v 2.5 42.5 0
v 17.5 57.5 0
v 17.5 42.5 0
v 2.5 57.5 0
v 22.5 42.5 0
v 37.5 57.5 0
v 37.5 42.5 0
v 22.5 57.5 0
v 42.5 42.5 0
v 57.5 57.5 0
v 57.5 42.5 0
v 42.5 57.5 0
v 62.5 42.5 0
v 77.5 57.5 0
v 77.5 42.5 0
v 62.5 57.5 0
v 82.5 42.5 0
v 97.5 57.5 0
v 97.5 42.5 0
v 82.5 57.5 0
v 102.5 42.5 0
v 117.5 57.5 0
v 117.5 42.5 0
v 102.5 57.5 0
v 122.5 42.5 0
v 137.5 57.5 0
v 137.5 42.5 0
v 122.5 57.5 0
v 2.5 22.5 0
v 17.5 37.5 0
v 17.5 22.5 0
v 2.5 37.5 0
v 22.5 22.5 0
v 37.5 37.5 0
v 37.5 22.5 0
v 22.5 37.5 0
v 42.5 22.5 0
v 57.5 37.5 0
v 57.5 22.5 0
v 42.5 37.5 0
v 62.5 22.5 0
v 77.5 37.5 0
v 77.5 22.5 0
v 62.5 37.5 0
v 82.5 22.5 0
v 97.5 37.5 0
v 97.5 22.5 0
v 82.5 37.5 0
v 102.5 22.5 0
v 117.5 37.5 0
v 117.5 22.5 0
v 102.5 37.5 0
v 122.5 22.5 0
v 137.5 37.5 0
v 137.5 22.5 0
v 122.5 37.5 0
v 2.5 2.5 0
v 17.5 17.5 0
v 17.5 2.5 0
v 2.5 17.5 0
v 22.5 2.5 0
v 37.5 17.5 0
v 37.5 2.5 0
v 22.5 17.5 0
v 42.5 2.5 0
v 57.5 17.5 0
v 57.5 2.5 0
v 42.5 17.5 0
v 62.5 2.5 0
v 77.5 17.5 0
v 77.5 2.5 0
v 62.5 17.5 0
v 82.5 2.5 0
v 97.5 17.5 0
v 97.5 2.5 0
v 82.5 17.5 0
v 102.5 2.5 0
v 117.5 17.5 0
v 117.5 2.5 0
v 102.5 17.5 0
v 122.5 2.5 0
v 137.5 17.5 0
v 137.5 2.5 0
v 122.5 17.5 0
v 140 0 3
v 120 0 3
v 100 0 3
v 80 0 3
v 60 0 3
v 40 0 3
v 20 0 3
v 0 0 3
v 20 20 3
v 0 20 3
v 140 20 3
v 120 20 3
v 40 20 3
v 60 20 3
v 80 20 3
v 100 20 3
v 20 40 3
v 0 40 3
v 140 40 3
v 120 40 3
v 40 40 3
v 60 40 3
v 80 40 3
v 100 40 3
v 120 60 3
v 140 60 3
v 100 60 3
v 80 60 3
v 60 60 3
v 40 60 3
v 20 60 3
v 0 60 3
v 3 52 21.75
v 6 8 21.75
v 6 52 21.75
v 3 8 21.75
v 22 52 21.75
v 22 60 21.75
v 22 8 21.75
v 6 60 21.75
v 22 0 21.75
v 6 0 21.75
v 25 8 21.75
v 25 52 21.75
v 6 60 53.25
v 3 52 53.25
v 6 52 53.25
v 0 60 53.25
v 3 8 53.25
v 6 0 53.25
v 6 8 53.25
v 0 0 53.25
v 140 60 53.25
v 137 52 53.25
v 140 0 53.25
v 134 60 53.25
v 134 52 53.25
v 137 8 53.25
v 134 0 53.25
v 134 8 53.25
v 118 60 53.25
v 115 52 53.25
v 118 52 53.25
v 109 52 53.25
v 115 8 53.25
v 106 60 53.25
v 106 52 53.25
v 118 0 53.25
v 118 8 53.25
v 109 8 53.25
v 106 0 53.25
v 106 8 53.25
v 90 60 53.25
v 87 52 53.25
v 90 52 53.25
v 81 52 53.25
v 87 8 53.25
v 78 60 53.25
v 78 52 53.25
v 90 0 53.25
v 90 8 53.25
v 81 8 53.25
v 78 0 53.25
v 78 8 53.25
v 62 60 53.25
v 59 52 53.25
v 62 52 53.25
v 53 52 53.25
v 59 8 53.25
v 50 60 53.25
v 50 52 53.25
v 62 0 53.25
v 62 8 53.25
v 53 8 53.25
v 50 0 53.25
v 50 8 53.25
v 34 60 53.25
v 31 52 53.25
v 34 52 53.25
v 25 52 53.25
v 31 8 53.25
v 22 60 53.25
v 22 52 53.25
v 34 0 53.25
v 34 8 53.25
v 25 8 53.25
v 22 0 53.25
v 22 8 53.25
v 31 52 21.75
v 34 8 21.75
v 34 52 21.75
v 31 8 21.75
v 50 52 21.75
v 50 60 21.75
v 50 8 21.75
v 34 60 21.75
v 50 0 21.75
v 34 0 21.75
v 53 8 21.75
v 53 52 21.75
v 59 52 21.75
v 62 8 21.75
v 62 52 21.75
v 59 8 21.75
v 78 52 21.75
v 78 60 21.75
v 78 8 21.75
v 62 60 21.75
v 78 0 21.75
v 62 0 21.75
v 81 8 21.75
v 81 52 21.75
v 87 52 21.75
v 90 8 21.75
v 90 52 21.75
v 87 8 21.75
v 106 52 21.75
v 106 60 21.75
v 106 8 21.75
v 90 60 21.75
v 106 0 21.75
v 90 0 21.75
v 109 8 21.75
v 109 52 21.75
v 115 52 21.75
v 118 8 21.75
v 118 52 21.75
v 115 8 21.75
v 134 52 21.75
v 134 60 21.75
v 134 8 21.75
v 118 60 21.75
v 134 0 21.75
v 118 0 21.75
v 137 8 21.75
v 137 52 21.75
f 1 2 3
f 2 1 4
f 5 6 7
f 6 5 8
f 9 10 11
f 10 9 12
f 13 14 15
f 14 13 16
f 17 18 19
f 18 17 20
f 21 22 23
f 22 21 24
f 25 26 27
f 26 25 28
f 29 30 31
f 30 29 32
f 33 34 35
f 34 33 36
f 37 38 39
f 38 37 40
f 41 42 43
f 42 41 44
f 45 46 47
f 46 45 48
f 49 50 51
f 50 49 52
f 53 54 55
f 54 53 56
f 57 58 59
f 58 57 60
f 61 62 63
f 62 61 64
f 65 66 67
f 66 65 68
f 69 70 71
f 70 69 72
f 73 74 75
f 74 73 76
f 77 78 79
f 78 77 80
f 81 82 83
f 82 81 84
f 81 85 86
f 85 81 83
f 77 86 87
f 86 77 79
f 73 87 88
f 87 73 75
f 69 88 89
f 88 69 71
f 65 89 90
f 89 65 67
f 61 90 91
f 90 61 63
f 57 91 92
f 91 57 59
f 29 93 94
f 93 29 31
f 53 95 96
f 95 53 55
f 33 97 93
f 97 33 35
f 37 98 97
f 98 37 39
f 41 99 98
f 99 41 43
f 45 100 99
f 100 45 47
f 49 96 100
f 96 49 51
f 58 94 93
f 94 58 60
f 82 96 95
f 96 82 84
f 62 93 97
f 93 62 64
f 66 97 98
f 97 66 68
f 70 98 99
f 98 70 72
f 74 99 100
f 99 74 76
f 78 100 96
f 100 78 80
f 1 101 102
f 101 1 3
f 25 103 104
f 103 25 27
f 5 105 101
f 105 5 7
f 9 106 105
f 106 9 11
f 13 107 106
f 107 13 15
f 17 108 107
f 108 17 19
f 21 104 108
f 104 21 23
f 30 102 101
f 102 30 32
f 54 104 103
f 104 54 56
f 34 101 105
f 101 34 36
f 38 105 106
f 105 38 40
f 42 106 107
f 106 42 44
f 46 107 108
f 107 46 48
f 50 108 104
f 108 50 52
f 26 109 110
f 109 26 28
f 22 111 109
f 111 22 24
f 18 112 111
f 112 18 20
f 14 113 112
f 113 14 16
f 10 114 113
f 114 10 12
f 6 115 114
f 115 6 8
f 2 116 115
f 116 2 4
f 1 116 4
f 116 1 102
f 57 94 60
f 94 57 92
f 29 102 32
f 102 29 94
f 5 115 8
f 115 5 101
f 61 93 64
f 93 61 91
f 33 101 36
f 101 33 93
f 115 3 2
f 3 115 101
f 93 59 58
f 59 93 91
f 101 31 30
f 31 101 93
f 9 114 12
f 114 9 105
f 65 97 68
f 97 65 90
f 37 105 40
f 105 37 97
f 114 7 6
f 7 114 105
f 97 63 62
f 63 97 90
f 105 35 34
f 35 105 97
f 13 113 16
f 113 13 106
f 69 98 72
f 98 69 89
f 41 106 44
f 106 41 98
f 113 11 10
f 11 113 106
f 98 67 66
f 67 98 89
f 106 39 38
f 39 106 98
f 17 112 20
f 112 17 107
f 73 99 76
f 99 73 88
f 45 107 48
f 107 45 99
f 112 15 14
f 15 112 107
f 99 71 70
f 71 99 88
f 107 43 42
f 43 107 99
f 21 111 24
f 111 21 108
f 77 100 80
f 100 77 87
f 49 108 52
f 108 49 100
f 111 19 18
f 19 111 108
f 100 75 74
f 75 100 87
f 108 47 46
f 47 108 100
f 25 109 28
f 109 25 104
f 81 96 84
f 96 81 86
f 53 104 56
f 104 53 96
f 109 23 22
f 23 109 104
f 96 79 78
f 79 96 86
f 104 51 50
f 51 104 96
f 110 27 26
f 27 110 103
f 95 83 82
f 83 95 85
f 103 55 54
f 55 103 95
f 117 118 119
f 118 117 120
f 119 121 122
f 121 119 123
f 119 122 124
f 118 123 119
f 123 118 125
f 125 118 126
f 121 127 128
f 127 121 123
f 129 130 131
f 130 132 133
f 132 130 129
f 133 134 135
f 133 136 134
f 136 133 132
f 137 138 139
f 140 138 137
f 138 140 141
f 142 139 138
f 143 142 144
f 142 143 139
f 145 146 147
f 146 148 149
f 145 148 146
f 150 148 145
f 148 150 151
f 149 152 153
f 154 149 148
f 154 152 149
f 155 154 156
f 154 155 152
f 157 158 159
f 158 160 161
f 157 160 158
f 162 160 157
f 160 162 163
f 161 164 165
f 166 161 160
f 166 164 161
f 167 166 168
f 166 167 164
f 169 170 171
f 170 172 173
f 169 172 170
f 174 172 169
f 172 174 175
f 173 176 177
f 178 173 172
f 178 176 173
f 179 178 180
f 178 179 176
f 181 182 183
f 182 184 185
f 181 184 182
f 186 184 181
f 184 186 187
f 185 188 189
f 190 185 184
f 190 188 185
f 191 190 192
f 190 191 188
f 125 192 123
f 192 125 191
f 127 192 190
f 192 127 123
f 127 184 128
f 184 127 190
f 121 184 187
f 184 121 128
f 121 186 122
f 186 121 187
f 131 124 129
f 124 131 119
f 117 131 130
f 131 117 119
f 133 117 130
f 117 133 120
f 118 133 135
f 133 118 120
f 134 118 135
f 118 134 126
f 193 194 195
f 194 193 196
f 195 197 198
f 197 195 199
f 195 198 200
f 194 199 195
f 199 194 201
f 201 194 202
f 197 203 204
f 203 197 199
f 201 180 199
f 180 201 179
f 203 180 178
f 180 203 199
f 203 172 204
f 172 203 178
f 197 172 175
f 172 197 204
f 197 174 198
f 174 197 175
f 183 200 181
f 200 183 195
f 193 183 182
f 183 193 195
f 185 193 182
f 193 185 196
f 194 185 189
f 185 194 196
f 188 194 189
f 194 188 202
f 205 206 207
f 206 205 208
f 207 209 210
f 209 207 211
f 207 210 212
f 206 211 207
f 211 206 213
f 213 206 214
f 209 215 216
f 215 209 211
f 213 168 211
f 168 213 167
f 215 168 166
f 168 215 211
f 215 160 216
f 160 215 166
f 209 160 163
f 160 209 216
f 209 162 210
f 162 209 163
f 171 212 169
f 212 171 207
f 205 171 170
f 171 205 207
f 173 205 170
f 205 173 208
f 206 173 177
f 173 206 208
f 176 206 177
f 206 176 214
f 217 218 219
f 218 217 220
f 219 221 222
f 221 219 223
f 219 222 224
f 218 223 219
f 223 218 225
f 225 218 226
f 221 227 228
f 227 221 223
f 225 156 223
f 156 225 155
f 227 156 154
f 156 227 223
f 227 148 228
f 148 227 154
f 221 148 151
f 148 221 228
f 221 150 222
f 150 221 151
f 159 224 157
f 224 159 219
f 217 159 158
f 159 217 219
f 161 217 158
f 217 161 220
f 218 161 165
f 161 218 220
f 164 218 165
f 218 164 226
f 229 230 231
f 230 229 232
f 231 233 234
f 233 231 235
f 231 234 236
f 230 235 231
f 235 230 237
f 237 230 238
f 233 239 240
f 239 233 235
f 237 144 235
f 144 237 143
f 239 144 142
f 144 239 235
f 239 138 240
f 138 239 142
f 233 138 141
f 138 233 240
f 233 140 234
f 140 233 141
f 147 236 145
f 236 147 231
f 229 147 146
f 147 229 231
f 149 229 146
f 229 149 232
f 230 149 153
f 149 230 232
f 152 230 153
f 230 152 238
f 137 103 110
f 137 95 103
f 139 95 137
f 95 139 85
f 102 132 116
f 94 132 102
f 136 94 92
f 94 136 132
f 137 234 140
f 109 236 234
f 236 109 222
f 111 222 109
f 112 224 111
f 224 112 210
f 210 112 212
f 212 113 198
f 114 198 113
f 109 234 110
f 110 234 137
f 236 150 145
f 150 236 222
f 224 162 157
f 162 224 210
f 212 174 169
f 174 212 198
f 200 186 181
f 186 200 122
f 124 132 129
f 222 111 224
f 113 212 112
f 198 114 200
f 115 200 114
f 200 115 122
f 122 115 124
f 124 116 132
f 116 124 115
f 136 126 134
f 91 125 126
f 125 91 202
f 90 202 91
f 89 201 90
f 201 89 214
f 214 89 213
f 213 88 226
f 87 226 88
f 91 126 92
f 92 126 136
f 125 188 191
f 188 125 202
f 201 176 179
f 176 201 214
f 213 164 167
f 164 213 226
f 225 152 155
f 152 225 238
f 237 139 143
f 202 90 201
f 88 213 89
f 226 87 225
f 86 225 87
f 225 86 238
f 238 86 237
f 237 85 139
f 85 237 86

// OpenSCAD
// file: ../common.scad
BASE_TILE_SIZE=20;
BASE_WIDTH=5;
PEAK_HEIGHT=3;

DEFAULT_FONT = "Ubuntu:style=Medium";
DEFAULT_FONT_DEPTH = 1;
DEFAULT_FONT_SIZE = 10;

render_helper_h = 1;

function y_up() = [90, 0, 0];
function x_up() = [90, 0, 90];

function min_floor_offset(wall_width) = wall_width + PEAK_HEIGHT;
function tri_mid() = BASE_WIDTH / 2;
function triangle() = [[0, 0],[BASE_WIDTH, 0],[tri_mid(), PEAK_HEIGHT]];
function base_tile_size() = BASE_TILE_SIZE;
function peak_height() = PEAK_HEIGHT;
function font_depth() = DEFAULT_FONT_DEPTH;
function font_size() = DEFAULT_FONT_SIZE;
function gridSize(x) = base_tile_size() * x;

function isX(direction) = (direction == "x");

module grid(width, depth, direction) {
    length = isX(direction) ? width : depth;
    slot_length = isX(direction) ? depth : width;
    translate_z = isX(direction) ? -slot_length : 0;
    rot = isX(direction) ? y_up() : x_up();

    // This is the total additional slots past the initial one
    total_slots = floor(length / BASE_TILE_SIZE);

    for (i = [0 : total_slots]) {
        offset = -tri_mid() + BASE_TILE_SIZE * i;
        rotate(rot)
        translate([offset, 0, translate_z])
        linear_extrude(height = slot_length)
        polygon(points=triangle());
    }
}

module grid_slots(width, depth) {
    grid(width, depth, "y");
    grid(width, depth, "x");
}

module base_block(width, depth, height, include_grid = true) {
    difference() {
        cube([width, depth, height]);

        if (include_grid) {
            grid_slots(width, depth);
        }
    }
}

module prism(l, w, h) {
    polyhedron(
        points=[ [0, 0, 0], [0, w, h], [l, w, h], [l, 0, 0], [0, w, 0], [l, w, 0] ],
        faces=[ [0, 1, 2, 3],
            [2, 1, 4, 5],
            [0, 3, 5, 4],
            [0, 4, 1],
            [3, 2, 5]
        ]
    );
}

module pyramid(w) {
    polyhedron(
        points=[ [w,w,0],[w,-w,0],[-w,-w,0],[-w,w,0], [0,0,w]  ],
        faces=[ [0,1,4],[1,2,4],[2,3,4],[3,0,4], [1,0,3],[2,1,3] ]
    );
}

module embossed_text(
    t,
    h = DEFAULT_FONT_DEPTH,
    font = DEFAULT_FONT,
    size = DEFAULT_FONT_SIZE,
    valign = "center",
    halign = "center",
    render_helper = true
) {
    extrude_h = (render_helper) ? h + render_helper_h : h;
    
    translate([0, 0, -h])
    linear_extrude(extrude_h)
    text(
        t,
        font = font,
        size = size,
        valign = valign,
        halign = halign
    );
}
// file: ../chip_holder.scad
use <common.scad>

MAX_THUMB_WIDTH = 30;
WAY_DEEP = 100;

render_helper = 1;

module generate_holder(
    tile_columns = 4,
    tile_rows = 2,
    tile_width = 33,
    tile_depth = 33,
    tile_count = 20,
    tile_height = 1.75,
    wall_width = 3,
    box_height = 69,
    box_clearance = 15.75,
    round_to_full_base = true,
    fit_to_box_height = true,
    hollow_bottom = false,
    include_grid = true
) {
    function getSize(count, tile_size) = count * (tile_size + wall_width) + wall_width;
    function roundFullBase(count, tile_size) = (round_to_full_base) ? ceil(getSize(count, tile_size) / base_tile_size()) * base_tile_size() : getSize(count, tile_size);
    function max_height() = box_height - box_clearance;

    slot_height = tile_count * tile_height;
    min_floor_offset = min_floor_offset(wall_width);
    min_height = slot_height + min_floor_offset;
    total_height = (fit_to_box_height) ? max(max_height(), min_height) : min_height;
    inside_height = (hollow_bottom) ? total_height - min_floor_offset : slot_height;
    floor_offset = (fit_to_box_height) ? max_height() - inside_height : min_floor_offset;

    total_width = roundFullBase(tile_columns, tile_width);
    total_depth = roundFullBase(tile_rows, tile_depth);

    row_width = tile_depth * tile_rows;
    col_width = tile_width * tile_columns;
    outside_walls = wall_width * 2;

    col_spread = (tile_columns > 1) ? (total_width - col_width - outside_walls) / (tile_columns - 1) : 0;
    row_spread = (tile_rows > 1) ? (total_depth - row_width - outside_walls) / (tile_rows - 1) : 0;

    thumb_width = min(tile_width - (wall_width * 2), MAX_THUMB_WIDTH);

    function colOffset(i) = (tile_columns == 1) ?
        (total_width - tile_width) / 2 :
        wall_width + ((tile_width + col_spread) * i);
    function rowOffset(i) = (tile_rows == 1) ?
        (total_depth - tile_depth) / 2 :
        wall_width + ((tile_depth + row_spread) * i);

    module tile_slot() {
        translate([0, 0, 0])
        square([tile_width, tile_depth]);
    }

    module thumb_slot_front() {
        width = thumb_width;
        side_offset = (tile_width - width) / 2;
        translate([side_offset, -WAY_DEEP, 0])
        square([width, WAY_DEEP]);
    }

    module thumb_slot_back() {
        width = thumb_width;
        side_offset = (tile_width - width) / 2;
        translate([side_offset, tile_depth, 0])
        square([width, WAY_DEEP]);
    }

    module tile_hole(slot_type = "none") {
        box_bottom = floor_offset;
        translate([0, 0, box_bottom])
        linear_extrude(height = inside_height + render_helper)
        union() {
            tile_slot();
            if (slot_type == "front" || slot_type == "both") {
                thumb_slot_front();
            }

            if (slot_type == "back" || slot_type == "both") {
                thumb_slot_back();
            }
        }
    }

    module tile_holes() {
        for (i = [0 : tile_rows - 1]) {
            for (j = [0 : tile_columns - 1]) {
                slot_type = (tile_rows == 1) ? "both" : (i == 0) ? "front" : (i == tile_rows - 1) ? "back" : "none";
                col_offset = colOffset(j);
                row_offset = rowOffset(i);

                translate([col_offset, row_offset, 0])
                tile_hole(slot_type = slot_type);
            }
        }
    }

    module bottom_x() {
        if (hollow_bottom) {
            for (i = [0 : tile_rows - 1]) {
                for (j = [0 : tile_columns - 1]) {
                    length = sqrt(pow(tile_width, 2) + pow(tile_depth, 2));
                    rot = acos(tile_depth / length);
                    x_height = inside_height - slot_height;
                    z_offset = min_floor_offset(wall_width);

                    col_offset = colOffset(j);
                    row_offset = rowOffset(i);

                    translate([col_offset - wall_width / 2, row_offset + wall_width / 2, z_offset])
                    rotate([0, 0, -rot])
                    cube([wall_width, length + wall_width, x_height]);

                    translate([col_offset + tile_width, row_offset - wall_width / 2, z_offset])
                    rotate([0, 0, rot])
                    cube([wall_width, length + wall_width, x_height]);
                }
            }
        }
    }

    difference() {
        union() {
            difference() {
                base_block(total_width, total_depth, total_height, include_grid = include_grid);
                tile_holes();
            }
            bottom_x();
        }

        if ($children) {
            text_offset_x = (colOffset(0) + (tile_width - thumb_width) / 2) / 2;
            text_offset_y = rowOffset(0) / 2;

            translate([text_offset_x, text_offset_y, total_height])
            children(0);
        }
    }
}
// file: common.scad
WALL_WIDTH = 3;
BOX_HEIGHT = 69;
BOX_CLEARANCE = 15.75;
TILE_HEIGHT = 1.75;

function wall_width() = WALL_WIDTH;
function box_height() = BOX_HEIGHT;
function box_clearance() = BOX_CLEARANCE;
function tile_height() = TILE_HEIGHT;
// main file
use <common.scad>
use <../chip_holder.scad>

generate_holder(
    tile_columns = 5,
    tile_rows = 1,
    tile_width = 22,
    tile_depth = 44,
    tile_count = 18,
    tile_height = 1.75,
    wall_width = wall_width(),
    box_height = box_height(),
    box_clearance = box_clearance(),
    round_to_full_base = true,
    fit_to_box_height = true,
    hollow_bottom = false
);
